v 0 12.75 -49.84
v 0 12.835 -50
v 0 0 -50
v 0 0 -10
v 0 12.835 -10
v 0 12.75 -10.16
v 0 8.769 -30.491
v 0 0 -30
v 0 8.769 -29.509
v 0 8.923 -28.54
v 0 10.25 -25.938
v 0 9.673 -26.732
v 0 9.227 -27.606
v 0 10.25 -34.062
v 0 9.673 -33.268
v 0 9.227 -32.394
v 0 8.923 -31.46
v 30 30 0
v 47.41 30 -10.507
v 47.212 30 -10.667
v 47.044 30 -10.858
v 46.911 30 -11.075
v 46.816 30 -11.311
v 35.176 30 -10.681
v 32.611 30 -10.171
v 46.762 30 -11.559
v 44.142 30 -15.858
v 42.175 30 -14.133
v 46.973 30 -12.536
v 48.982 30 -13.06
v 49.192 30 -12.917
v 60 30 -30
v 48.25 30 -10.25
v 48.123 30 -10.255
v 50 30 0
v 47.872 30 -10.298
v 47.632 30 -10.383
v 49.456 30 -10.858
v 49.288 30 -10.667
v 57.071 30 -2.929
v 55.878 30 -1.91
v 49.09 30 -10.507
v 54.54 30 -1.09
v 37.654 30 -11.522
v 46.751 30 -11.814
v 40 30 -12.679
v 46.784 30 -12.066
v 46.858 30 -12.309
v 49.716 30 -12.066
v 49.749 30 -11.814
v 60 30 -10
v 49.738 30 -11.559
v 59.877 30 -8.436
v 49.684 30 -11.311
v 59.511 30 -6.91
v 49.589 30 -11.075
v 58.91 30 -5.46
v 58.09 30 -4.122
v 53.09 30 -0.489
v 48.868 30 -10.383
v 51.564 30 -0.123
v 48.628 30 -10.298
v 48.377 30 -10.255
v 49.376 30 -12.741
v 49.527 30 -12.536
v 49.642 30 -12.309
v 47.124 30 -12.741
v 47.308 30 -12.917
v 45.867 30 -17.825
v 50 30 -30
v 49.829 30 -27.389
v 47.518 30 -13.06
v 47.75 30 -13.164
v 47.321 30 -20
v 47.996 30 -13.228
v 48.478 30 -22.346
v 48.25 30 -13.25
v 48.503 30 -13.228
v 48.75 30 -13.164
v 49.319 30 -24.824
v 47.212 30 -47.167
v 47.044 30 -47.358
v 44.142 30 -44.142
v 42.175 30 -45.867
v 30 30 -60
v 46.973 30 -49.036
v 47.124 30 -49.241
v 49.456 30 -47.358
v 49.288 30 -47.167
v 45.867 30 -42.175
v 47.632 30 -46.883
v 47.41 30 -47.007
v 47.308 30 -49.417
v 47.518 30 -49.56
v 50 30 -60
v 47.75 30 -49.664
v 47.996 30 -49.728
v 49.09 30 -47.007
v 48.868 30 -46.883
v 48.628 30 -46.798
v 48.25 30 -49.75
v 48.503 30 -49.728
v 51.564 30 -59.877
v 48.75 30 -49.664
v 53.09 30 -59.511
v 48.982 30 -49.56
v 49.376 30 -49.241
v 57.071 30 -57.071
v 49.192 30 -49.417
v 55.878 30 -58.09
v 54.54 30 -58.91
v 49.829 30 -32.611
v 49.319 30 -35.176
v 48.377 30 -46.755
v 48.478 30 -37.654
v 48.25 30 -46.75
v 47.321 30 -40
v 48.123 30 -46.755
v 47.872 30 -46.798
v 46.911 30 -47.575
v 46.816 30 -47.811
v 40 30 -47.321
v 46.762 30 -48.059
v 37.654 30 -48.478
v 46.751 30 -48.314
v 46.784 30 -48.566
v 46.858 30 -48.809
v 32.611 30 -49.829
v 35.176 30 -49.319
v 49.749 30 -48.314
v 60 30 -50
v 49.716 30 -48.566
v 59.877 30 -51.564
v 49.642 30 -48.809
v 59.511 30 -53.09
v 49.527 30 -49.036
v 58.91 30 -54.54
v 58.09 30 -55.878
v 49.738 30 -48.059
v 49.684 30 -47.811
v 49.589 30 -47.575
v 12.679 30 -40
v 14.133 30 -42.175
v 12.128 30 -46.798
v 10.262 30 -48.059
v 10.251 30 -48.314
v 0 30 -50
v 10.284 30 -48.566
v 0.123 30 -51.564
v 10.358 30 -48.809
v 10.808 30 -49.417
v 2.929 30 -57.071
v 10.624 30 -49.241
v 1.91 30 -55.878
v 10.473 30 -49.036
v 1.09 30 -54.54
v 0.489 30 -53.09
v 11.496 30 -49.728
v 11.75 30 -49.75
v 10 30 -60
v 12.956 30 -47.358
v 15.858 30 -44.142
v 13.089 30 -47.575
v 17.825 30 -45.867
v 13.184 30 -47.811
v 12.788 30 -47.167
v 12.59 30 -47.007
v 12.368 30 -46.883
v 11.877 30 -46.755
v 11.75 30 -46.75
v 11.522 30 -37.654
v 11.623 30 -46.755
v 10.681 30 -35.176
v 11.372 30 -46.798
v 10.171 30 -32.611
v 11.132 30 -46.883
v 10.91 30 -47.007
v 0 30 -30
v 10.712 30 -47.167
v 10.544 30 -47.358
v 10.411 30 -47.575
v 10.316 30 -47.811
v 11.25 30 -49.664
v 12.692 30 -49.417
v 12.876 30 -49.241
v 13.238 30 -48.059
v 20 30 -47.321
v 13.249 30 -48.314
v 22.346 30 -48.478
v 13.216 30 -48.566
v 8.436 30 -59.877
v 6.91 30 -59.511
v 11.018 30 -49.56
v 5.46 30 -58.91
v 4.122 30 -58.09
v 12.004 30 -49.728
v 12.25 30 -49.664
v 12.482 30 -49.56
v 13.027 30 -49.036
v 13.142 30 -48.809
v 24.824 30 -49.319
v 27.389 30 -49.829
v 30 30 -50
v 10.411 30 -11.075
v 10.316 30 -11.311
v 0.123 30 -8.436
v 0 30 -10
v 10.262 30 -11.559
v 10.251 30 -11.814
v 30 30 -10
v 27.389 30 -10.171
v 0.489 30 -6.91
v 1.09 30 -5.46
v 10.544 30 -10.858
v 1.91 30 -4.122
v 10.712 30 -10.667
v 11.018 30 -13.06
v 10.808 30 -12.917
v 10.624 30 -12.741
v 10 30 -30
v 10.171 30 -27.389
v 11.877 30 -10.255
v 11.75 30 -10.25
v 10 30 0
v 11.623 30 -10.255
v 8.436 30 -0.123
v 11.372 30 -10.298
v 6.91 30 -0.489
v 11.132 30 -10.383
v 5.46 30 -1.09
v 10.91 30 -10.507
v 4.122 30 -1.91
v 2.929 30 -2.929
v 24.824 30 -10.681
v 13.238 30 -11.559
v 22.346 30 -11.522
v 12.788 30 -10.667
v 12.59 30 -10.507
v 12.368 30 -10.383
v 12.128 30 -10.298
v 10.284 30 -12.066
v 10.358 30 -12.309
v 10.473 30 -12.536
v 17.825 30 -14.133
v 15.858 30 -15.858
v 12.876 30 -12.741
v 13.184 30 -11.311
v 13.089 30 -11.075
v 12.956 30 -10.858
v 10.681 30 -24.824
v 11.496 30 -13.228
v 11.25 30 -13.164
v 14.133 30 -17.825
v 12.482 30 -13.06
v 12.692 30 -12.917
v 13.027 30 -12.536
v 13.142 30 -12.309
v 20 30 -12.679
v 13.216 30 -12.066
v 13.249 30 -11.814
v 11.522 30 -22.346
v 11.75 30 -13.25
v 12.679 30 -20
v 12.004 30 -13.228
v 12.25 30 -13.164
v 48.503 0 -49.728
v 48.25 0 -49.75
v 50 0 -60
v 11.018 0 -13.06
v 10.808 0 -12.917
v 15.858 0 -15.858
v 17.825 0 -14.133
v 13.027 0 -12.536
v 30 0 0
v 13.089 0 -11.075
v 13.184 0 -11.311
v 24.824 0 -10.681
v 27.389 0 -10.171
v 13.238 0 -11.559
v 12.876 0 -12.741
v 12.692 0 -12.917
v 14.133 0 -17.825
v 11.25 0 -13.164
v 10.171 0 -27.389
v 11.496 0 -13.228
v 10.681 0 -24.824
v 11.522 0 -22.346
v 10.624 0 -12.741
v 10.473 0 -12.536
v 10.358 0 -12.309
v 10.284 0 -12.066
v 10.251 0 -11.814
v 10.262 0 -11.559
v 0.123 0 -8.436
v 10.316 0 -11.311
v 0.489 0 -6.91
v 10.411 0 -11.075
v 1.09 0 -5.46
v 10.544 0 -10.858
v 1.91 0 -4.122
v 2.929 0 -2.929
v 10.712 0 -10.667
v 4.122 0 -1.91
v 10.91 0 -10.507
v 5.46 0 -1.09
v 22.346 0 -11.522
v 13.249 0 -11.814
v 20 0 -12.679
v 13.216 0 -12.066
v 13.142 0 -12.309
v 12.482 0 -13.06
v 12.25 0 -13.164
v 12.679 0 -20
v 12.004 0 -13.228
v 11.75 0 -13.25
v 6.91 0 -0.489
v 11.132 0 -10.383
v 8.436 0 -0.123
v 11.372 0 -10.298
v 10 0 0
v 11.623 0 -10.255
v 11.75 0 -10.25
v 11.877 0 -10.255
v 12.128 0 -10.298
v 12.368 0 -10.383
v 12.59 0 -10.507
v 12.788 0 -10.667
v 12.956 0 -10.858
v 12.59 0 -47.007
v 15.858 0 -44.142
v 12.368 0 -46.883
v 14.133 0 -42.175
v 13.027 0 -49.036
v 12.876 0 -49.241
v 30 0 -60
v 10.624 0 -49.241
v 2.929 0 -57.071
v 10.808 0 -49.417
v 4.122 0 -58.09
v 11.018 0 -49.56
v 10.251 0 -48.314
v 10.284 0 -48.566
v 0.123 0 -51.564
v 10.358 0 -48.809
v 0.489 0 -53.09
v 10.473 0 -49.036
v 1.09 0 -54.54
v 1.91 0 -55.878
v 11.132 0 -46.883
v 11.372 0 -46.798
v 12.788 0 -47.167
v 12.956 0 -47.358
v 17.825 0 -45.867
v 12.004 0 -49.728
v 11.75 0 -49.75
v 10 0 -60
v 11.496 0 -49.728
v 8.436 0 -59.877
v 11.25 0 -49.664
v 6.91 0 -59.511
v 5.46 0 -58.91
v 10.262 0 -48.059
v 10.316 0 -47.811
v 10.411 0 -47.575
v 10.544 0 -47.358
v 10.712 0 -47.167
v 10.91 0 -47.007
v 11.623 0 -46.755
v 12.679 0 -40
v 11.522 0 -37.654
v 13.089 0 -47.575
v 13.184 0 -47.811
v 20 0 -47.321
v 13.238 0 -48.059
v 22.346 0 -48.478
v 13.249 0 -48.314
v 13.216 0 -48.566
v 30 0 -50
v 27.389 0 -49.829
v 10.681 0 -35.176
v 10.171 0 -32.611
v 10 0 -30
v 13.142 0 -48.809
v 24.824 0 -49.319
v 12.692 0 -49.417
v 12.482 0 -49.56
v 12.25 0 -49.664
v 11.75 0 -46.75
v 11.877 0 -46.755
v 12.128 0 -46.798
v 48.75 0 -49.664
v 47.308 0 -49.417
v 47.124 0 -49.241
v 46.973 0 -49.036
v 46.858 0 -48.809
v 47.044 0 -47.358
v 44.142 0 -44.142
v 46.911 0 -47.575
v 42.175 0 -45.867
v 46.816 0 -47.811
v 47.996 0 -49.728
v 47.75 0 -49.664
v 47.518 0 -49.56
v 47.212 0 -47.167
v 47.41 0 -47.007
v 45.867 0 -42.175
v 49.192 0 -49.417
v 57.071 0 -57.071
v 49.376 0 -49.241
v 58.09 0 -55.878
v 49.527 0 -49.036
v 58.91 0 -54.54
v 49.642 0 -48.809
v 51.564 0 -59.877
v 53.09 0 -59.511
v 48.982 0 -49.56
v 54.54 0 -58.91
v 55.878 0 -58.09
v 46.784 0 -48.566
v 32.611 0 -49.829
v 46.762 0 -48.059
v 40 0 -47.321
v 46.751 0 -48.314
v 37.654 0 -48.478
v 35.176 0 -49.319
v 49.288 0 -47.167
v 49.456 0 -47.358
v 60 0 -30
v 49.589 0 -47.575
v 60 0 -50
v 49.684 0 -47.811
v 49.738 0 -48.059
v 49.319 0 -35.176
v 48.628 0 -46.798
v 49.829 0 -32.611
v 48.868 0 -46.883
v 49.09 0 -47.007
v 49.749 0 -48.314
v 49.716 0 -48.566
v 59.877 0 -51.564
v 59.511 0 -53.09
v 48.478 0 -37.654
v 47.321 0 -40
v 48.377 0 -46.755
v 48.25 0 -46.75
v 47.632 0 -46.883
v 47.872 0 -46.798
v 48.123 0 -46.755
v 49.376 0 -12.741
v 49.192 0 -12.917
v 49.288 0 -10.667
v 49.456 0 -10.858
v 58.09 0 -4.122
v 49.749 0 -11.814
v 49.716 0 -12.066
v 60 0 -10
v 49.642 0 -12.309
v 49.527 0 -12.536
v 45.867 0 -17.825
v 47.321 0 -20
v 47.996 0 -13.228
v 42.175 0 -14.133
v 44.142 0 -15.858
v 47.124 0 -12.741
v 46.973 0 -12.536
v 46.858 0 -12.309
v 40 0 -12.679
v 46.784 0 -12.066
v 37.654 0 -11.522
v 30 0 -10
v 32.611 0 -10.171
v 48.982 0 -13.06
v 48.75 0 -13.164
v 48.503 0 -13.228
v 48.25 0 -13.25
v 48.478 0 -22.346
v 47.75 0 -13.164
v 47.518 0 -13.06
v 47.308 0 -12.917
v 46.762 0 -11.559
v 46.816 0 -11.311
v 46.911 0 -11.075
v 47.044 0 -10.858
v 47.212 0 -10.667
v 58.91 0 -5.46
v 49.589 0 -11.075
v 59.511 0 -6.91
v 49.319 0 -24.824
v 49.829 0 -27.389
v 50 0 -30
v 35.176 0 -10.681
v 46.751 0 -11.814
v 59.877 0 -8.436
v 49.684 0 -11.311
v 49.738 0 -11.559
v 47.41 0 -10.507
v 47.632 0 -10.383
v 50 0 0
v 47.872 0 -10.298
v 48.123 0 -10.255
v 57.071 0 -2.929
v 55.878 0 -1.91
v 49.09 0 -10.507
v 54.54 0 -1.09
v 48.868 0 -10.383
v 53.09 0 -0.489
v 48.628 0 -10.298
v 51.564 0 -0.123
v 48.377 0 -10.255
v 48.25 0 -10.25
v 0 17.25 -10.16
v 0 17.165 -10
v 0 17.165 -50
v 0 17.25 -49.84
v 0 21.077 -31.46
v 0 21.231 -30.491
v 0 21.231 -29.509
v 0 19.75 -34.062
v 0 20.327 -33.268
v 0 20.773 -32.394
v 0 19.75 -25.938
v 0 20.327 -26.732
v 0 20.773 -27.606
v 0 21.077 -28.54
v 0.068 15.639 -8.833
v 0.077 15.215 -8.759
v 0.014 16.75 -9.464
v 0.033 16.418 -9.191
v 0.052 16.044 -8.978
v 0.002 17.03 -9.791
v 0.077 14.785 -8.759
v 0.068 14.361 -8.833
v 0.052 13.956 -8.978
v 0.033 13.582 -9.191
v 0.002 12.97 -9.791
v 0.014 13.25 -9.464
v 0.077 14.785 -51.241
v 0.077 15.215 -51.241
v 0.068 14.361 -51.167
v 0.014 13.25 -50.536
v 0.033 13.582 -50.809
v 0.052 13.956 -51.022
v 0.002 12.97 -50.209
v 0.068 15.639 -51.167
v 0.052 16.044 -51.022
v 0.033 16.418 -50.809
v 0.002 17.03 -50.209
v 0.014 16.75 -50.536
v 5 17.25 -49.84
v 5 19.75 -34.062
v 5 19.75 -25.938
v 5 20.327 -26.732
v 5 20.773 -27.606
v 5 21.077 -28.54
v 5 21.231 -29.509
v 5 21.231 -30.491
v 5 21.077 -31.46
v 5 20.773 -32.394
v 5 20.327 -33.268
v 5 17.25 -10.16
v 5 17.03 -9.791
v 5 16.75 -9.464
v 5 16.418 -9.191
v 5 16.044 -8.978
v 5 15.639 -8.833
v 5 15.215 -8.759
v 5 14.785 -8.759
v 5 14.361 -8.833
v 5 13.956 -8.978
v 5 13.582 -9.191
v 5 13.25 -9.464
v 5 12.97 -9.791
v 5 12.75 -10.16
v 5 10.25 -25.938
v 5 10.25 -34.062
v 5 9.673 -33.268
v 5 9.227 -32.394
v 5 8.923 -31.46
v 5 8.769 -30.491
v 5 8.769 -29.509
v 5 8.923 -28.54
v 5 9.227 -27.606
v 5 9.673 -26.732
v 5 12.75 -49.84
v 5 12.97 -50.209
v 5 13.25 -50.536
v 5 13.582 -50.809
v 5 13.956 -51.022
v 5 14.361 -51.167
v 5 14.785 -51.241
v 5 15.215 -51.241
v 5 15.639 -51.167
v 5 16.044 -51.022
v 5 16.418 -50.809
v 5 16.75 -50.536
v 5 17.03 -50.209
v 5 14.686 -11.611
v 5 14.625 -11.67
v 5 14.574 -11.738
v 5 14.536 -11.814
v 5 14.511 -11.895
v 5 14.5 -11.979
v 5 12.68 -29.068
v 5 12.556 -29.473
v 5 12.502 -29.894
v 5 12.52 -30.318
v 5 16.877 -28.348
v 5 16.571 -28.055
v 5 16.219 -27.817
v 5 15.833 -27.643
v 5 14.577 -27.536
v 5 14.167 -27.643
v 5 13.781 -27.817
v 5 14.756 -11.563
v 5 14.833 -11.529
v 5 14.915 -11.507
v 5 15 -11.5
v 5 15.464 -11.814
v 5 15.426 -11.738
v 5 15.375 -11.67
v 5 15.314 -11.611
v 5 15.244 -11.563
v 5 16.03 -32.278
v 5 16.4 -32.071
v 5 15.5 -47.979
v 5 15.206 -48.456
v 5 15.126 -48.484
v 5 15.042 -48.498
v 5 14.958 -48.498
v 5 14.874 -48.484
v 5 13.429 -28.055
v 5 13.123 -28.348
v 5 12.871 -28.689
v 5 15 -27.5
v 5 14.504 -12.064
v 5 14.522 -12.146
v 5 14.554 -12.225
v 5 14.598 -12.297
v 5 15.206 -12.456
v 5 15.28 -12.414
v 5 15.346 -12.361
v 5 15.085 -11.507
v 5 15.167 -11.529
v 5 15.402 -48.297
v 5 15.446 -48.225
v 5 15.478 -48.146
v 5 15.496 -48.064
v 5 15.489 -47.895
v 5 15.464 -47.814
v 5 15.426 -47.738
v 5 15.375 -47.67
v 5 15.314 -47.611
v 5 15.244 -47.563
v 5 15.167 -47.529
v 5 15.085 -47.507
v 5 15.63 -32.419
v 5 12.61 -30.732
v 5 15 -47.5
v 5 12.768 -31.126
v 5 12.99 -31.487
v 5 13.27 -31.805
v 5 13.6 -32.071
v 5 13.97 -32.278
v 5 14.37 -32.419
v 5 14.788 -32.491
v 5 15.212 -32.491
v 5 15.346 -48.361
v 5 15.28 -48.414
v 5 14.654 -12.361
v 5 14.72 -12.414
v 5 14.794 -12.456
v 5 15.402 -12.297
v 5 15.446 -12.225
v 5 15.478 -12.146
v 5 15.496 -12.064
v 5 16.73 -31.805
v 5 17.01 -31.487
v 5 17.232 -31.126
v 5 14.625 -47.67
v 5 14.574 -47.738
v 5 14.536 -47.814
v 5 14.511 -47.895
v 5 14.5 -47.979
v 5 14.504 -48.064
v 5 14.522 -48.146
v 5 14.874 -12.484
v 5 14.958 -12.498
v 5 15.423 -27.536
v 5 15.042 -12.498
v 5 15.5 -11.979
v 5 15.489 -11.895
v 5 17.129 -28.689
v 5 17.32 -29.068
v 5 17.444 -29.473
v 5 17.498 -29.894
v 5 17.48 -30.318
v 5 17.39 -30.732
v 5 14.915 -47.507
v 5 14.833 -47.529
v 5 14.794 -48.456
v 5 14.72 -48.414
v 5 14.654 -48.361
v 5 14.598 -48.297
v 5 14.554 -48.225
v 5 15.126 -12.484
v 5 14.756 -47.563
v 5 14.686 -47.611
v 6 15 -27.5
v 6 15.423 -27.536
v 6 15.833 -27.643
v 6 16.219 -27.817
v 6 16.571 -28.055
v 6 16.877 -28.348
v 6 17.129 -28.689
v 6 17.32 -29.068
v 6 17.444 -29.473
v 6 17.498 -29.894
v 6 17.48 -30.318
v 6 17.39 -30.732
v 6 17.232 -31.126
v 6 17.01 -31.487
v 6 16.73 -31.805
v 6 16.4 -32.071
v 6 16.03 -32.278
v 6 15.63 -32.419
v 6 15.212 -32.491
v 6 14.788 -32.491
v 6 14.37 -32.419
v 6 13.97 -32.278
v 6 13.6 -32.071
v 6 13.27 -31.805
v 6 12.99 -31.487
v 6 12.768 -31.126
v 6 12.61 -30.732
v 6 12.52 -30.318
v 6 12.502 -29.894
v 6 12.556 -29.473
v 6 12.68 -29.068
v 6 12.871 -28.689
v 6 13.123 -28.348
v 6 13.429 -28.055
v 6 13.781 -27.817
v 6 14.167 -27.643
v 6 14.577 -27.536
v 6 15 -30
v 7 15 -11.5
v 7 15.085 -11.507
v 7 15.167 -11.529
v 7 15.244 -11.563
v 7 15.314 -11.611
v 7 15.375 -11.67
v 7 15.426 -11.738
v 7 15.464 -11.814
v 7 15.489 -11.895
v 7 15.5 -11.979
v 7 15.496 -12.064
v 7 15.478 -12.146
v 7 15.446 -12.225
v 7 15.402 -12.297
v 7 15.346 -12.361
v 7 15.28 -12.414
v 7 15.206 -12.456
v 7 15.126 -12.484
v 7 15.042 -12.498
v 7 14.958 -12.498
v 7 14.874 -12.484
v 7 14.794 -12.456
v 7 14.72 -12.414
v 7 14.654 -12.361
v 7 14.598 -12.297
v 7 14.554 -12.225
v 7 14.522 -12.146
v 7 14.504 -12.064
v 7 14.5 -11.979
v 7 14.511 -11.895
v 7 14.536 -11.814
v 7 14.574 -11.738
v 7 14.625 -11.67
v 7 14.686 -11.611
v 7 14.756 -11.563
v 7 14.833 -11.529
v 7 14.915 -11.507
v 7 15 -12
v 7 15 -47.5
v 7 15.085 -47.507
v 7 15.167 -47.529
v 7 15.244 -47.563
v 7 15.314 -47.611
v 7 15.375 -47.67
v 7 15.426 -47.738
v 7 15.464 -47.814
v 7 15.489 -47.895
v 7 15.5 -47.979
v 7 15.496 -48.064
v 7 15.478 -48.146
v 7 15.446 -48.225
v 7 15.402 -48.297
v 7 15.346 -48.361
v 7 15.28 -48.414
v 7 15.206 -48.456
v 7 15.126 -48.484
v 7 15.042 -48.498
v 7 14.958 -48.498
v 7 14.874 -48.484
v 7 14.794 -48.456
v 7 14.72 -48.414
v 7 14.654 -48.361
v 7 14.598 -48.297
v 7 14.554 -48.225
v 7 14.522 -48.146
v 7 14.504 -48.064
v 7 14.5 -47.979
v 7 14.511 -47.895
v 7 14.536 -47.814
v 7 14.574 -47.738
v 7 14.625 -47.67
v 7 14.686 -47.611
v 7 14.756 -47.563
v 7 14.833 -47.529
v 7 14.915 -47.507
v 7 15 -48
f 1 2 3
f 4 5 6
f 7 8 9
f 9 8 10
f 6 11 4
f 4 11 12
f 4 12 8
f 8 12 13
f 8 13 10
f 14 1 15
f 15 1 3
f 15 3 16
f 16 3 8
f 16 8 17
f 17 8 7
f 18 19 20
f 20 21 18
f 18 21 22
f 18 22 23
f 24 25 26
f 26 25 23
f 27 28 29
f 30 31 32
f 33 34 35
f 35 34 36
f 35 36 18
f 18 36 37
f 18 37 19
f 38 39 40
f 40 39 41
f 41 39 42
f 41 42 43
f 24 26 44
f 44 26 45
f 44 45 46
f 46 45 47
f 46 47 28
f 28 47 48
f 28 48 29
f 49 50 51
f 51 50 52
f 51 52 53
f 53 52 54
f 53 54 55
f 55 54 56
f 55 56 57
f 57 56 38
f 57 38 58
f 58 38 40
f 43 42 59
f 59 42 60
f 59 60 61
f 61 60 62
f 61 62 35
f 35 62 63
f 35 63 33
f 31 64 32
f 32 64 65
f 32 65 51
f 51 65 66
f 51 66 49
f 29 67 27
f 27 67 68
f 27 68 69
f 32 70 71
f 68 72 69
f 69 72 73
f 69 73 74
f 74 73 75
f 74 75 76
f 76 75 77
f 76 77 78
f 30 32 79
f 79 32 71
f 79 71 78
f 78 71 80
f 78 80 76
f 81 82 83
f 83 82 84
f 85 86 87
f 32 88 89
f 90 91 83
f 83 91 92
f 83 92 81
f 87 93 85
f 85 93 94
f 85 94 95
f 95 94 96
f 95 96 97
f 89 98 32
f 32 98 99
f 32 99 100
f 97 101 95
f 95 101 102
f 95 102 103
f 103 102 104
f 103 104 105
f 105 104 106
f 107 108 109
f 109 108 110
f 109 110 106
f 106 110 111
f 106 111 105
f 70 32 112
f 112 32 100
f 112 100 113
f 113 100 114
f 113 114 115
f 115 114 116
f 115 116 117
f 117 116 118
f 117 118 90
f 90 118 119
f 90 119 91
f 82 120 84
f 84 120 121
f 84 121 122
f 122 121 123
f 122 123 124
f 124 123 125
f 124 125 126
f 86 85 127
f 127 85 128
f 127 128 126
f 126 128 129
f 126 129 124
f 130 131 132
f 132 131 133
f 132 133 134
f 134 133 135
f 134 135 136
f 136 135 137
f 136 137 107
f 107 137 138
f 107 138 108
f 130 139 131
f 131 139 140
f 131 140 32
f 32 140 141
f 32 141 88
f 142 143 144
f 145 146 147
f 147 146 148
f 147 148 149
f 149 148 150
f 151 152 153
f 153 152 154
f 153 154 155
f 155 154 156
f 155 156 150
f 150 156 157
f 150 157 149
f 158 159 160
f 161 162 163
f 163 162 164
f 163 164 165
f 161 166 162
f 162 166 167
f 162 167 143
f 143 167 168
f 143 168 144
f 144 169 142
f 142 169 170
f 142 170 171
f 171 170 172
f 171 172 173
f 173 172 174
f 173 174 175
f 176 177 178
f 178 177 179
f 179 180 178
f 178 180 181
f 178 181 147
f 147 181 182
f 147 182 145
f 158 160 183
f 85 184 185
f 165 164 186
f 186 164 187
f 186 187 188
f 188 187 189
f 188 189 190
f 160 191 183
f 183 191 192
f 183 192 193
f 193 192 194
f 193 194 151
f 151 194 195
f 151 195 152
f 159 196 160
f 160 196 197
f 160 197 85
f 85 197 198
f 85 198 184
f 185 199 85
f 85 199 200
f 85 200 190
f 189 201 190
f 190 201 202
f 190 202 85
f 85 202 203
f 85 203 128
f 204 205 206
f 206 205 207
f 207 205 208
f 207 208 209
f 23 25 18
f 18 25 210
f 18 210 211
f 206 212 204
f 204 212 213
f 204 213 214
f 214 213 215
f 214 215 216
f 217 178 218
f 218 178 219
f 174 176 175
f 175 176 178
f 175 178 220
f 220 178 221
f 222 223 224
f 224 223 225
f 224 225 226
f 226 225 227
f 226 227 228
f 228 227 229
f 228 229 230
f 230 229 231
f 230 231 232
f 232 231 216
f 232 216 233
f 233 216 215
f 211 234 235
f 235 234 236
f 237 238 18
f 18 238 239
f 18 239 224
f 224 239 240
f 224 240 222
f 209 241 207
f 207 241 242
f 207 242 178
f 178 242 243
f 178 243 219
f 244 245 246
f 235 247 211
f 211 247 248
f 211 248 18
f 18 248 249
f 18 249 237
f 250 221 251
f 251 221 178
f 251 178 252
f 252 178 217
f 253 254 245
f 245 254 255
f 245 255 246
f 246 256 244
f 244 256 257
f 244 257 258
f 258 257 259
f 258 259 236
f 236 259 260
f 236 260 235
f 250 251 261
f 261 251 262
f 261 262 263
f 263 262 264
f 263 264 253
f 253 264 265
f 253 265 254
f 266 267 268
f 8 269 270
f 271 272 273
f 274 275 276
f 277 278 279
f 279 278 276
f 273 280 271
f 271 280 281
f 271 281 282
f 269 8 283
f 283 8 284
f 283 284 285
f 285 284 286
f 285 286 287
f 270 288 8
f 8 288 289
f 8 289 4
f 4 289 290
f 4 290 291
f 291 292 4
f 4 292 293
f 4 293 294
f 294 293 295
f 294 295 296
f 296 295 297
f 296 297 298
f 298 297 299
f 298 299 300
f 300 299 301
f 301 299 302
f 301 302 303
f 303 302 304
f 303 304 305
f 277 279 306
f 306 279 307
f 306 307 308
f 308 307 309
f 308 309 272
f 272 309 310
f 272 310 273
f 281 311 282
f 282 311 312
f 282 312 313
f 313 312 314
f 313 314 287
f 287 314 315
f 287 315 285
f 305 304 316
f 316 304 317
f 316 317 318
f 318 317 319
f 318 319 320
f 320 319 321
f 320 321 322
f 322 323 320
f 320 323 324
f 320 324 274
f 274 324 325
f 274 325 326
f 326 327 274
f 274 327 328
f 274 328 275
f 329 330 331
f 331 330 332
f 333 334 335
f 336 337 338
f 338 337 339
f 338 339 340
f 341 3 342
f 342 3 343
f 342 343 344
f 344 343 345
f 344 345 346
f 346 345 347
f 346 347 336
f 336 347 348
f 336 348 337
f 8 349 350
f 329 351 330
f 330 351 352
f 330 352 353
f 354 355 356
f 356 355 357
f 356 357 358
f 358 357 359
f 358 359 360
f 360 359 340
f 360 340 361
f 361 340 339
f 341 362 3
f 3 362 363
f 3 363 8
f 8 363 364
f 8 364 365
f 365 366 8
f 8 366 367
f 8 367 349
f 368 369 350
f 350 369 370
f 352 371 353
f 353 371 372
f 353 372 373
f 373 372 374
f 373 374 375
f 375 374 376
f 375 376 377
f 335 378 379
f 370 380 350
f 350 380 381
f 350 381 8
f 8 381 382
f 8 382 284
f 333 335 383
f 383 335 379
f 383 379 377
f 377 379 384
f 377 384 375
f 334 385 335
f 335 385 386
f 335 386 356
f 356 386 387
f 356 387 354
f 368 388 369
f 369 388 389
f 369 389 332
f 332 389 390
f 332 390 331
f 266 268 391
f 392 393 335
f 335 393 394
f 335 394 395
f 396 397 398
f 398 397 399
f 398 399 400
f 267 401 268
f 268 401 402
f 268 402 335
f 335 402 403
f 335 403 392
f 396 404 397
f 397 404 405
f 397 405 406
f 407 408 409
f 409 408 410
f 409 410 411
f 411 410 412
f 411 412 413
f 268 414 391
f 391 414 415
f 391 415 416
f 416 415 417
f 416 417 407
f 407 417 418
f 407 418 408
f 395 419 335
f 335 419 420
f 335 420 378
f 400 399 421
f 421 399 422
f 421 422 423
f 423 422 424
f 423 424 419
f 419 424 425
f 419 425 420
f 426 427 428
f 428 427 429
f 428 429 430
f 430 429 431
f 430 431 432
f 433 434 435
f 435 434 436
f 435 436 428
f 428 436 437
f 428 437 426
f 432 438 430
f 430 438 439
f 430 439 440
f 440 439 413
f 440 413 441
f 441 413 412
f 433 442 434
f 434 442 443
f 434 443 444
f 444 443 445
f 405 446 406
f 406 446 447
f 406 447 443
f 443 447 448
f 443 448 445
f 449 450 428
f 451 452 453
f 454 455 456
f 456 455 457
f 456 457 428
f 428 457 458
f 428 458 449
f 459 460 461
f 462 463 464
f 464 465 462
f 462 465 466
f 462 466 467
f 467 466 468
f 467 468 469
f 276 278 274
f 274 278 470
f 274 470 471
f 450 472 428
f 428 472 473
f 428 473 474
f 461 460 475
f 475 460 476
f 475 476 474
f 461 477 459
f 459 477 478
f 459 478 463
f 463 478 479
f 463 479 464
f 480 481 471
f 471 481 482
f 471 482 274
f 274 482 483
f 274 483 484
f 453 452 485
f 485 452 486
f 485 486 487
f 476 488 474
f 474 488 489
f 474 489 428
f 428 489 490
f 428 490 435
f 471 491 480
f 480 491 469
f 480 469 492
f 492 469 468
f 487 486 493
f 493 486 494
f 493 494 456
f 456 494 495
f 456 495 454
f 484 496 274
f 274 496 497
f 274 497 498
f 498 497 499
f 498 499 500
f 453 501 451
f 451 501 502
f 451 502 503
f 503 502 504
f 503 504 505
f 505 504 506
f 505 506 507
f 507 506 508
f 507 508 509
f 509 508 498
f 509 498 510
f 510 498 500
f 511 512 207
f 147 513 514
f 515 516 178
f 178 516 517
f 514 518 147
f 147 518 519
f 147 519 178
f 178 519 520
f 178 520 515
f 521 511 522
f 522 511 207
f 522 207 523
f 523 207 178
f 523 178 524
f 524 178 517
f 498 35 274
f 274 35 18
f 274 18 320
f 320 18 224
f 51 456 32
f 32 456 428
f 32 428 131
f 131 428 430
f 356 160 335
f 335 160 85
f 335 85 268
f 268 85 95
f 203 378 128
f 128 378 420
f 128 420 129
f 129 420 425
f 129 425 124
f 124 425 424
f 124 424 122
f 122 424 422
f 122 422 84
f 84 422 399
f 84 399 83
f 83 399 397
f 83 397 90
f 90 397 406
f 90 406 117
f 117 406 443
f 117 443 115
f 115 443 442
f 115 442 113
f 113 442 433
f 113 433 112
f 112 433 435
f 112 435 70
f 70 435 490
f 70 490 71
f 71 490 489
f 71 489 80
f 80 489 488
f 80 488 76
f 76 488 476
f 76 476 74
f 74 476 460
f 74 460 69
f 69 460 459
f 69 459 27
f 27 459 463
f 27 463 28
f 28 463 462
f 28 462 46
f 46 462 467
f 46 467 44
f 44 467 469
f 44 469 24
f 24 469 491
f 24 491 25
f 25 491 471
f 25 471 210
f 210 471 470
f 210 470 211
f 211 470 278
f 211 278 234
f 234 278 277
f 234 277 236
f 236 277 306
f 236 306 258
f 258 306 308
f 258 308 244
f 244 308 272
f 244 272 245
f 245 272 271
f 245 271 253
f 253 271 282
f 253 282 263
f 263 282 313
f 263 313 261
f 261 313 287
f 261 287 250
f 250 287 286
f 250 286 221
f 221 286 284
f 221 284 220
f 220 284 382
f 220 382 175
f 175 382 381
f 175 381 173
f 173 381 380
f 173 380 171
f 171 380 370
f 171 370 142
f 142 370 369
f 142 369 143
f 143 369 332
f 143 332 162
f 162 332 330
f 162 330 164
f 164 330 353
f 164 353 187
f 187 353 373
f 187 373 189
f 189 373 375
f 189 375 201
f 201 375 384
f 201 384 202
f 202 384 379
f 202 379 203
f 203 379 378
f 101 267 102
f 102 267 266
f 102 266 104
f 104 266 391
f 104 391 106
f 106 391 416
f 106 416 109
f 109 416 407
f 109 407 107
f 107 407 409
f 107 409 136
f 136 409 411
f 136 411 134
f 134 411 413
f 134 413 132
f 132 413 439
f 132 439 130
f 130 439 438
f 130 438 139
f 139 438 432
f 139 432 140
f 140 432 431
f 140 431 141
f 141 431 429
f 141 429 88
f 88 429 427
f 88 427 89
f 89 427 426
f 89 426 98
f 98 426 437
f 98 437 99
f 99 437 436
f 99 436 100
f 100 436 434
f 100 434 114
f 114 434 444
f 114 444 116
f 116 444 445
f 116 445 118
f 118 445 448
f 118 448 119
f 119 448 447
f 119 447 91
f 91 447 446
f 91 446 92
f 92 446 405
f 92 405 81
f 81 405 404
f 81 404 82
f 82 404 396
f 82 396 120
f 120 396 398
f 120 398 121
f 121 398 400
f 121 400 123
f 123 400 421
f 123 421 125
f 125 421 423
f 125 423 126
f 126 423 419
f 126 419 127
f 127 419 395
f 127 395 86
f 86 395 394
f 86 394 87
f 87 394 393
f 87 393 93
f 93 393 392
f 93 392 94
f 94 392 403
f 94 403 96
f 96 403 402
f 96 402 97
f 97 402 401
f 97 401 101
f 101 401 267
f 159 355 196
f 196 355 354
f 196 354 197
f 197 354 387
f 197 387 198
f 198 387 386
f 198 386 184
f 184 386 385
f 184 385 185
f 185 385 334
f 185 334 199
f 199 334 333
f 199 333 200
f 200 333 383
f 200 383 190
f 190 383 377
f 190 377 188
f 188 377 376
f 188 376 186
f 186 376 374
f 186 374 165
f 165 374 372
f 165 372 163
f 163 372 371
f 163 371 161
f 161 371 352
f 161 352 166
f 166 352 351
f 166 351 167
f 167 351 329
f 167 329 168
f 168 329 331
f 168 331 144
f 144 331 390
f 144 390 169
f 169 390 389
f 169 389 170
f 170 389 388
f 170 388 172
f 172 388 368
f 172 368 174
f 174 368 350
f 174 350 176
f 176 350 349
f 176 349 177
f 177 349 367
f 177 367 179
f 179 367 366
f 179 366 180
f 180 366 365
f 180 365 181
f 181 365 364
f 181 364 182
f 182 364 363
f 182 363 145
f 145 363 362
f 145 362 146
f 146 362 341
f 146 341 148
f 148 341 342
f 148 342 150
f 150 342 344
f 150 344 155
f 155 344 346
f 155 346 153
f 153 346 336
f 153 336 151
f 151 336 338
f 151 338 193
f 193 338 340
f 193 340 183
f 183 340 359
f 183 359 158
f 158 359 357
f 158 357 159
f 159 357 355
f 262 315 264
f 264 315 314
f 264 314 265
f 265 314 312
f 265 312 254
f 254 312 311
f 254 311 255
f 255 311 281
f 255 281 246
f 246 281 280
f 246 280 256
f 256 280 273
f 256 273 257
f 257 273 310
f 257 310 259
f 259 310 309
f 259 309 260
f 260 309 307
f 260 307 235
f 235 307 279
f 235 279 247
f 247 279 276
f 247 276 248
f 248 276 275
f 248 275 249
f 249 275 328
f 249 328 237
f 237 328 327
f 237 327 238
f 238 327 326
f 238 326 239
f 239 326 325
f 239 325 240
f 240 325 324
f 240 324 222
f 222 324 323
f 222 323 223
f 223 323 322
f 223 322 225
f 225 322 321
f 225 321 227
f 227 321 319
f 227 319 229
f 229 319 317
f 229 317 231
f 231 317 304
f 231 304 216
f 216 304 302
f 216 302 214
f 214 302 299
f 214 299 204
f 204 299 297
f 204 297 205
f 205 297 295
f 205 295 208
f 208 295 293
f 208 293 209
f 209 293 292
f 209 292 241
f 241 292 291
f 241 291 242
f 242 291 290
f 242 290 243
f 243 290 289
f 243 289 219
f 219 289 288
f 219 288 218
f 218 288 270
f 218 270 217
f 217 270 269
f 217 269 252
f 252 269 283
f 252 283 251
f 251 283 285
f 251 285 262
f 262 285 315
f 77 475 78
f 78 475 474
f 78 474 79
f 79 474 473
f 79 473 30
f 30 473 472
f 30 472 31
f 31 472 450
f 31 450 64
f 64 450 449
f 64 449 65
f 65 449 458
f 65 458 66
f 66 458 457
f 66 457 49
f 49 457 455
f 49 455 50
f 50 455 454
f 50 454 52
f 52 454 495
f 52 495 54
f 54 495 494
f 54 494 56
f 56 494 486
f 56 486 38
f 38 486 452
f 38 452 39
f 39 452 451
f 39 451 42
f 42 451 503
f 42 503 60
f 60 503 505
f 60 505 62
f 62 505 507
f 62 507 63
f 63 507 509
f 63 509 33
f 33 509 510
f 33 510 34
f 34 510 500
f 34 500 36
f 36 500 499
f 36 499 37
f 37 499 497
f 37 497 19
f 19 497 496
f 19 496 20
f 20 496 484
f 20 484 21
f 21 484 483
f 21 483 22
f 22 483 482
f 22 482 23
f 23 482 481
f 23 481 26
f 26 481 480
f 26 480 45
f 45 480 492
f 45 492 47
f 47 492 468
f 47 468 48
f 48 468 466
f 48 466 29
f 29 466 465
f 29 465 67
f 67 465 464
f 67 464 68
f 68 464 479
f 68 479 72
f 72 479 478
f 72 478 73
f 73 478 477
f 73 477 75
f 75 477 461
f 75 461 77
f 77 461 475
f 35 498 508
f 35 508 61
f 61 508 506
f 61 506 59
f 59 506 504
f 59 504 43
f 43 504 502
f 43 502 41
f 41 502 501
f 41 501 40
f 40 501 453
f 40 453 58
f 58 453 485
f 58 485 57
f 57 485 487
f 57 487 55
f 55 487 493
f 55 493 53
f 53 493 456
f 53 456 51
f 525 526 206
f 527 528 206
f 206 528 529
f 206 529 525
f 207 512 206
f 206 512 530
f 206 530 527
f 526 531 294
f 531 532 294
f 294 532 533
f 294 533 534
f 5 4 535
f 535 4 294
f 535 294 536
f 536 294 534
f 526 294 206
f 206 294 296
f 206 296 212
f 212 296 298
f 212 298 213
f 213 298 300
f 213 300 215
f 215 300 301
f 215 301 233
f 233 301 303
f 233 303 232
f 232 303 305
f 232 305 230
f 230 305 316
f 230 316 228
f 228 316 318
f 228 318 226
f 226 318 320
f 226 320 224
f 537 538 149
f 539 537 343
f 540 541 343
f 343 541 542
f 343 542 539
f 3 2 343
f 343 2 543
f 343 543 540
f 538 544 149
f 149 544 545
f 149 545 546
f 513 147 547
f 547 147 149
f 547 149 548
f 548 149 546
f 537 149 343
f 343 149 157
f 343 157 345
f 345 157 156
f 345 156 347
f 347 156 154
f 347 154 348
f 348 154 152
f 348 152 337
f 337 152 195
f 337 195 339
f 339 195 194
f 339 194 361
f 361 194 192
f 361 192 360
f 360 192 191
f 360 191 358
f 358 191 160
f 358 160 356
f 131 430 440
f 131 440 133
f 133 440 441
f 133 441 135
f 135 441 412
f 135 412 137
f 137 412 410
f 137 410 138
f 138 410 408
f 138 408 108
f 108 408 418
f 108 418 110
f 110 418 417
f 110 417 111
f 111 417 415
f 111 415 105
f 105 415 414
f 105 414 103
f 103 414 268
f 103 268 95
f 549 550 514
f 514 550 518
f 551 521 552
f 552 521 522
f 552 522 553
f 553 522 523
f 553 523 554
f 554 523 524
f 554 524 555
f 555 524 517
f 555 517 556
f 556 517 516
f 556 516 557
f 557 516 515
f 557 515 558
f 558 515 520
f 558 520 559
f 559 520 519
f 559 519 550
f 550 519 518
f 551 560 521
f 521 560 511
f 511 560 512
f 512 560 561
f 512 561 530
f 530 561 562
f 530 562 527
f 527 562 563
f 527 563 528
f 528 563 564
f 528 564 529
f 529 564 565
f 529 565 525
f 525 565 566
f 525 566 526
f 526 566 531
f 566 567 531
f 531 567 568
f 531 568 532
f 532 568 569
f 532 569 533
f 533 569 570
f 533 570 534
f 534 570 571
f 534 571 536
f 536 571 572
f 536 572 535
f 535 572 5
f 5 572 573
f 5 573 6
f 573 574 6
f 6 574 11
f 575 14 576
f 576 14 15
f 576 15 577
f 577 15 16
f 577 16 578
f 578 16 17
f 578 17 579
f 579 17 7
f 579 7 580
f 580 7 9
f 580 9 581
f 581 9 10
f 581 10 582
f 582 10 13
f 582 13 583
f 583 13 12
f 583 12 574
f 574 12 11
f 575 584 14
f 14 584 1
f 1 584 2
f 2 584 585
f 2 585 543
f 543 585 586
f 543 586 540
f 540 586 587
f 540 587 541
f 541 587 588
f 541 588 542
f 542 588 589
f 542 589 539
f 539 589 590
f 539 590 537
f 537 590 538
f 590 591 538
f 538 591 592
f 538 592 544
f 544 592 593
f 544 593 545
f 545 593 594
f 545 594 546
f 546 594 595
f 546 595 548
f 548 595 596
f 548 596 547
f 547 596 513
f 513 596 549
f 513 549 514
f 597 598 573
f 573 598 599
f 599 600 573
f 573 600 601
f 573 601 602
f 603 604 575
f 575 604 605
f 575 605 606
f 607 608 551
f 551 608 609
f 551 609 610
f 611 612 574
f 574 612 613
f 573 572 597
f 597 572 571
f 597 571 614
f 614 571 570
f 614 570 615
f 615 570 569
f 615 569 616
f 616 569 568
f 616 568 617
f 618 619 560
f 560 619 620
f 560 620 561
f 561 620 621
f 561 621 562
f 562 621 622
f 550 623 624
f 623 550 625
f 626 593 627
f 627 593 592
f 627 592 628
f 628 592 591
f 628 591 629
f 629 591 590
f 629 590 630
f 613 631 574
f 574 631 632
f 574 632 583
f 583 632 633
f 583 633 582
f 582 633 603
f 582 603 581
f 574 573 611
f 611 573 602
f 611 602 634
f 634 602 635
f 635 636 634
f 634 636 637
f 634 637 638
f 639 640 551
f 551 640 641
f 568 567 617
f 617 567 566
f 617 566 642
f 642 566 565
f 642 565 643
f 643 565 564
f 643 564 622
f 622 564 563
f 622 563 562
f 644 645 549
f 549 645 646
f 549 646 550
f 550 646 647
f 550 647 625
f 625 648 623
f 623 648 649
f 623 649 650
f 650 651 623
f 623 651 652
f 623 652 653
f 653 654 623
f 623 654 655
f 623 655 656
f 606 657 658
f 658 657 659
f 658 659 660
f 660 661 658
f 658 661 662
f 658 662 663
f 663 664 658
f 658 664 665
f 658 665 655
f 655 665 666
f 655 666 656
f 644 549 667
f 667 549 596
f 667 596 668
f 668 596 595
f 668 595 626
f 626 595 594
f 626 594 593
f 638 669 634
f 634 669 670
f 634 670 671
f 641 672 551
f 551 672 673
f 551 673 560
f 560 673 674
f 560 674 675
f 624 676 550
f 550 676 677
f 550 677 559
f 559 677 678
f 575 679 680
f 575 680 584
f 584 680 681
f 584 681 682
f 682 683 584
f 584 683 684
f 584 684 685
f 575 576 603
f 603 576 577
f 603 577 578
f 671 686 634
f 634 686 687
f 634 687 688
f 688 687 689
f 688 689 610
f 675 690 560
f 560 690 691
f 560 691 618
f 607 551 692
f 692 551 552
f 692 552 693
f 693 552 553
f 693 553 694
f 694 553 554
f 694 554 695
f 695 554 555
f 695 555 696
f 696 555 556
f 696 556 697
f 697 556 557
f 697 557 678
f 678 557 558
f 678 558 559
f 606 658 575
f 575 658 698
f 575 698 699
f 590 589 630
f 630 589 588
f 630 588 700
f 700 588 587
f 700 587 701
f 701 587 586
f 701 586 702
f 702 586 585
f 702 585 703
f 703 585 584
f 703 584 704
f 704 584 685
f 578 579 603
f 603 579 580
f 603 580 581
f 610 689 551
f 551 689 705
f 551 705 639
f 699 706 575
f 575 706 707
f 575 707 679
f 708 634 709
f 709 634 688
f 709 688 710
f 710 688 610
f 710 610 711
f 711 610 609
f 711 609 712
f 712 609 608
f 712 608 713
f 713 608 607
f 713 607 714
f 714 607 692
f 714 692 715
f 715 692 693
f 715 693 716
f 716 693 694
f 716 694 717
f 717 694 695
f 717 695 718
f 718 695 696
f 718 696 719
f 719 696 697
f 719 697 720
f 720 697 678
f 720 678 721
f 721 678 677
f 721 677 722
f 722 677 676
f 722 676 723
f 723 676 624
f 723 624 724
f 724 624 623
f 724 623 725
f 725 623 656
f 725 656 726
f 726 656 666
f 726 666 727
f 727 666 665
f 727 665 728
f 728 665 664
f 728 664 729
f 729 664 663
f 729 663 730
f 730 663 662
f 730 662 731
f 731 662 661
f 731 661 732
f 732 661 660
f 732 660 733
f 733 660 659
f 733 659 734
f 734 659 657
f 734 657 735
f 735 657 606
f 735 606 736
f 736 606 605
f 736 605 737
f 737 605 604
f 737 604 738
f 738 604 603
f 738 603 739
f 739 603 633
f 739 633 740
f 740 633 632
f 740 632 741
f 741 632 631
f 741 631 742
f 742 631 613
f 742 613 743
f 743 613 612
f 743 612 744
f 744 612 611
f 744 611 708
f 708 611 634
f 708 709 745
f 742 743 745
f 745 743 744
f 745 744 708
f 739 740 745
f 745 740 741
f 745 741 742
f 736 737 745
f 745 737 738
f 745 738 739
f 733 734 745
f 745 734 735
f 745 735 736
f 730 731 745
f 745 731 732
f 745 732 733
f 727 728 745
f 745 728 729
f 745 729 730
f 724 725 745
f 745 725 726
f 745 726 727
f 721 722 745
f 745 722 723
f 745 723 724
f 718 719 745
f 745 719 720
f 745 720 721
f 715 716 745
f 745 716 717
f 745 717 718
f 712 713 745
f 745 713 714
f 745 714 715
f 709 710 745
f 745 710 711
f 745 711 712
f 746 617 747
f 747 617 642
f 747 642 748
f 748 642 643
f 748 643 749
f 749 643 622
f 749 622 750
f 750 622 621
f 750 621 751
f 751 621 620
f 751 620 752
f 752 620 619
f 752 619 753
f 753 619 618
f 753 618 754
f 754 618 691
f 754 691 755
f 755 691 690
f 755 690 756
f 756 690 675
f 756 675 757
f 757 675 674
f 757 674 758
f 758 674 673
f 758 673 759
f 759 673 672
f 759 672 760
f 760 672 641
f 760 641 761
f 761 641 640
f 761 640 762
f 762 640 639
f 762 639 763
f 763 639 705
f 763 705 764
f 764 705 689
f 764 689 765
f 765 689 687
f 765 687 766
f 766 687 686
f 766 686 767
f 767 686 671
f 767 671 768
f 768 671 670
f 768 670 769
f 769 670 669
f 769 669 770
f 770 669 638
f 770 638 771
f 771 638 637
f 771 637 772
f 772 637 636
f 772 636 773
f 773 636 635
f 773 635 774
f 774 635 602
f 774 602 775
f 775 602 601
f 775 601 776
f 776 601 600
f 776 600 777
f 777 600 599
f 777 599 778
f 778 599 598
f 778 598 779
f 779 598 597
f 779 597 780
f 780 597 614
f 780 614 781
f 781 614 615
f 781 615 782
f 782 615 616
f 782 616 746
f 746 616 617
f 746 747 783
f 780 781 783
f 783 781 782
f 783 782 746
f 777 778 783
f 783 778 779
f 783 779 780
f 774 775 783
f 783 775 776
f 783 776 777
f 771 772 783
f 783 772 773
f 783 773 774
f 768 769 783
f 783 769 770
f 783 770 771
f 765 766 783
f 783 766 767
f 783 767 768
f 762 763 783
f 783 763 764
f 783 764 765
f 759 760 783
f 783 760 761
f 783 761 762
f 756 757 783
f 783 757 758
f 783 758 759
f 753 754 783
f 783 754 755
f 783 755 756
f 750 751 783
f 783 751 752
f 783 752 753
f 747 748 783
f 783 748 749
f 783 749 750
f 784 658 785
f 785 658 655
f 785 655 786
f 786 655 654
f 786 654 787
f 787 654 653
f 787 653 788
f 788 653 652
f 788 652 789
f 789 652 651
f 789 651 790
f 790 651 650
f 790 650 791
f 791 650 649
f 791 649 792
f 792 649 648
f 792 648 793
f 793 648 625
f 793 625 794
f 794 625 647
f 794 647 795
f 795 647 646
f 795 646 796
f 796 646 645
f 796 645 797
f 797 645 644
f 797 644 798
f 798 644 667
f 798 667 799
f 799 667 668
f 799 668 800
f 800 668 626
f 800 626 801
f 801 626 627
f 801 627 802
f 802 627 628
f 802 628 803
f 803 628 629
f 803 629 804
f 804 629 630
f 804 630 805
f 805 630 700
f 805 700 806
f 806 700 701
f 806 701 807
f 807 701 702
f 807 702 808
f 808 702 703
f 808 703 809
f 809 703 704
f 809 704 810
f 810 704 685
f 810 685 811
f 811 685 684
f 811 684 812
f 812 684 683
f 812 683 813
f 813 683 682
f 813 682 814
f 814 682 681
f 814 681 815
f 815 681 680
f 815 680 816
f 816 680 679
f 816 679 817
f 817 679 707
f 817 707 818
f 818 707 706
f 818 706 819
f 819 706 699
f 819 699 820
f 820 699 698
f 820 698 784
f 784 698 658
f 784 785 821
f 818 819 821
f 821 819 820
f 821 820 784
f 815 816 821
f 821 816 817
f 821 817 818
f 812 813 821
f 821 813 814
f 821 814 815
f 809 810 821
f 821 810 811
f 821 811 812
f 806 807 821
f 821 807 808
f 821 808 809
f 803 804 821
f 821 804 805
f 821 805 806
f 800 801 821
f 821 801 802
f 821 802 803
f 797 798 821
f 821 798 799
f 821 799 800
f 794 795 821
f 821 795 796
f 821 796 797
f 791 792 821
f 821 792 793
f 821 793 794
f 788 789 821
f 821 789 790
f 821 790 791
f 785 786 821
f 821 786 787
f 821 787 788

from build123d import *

# Parameters (mm, degrees)
SKETCH1_W           = 60
SKETCH1_H           = 60
SKETCH1_R           = 20
SKETCH1_R_2         = 1.5
BOSS_EXTRUDE1_DEPTH = 30
FILLET1_R           = 10
SKETCH2_R           = 6.25
CUT_EXTRUDE1_DEPTH  = 5
SKETCH3_R           = 2.5
CUT_EXTRUDE4_DEPTH  = 1
SKETCH4_R           = 0.5
CUT_EXTRUDE5_DEPTH  = 2


with BuildPart() as part:
    # Sketch1 → Boss-Extrude1 (new body)
    with BuildSketch(Plane(origin=(0, 0, 0), x_dir=(1, 0, 0), z_dir=(0, 1, 0))):
        with Locations((30, 30)):
            Rectangle(SKETCH1_W, SKETCH1_H)
        with Locations(Location((30, 30, 0), (0, 0, 270))):
            Circle(SKETCH1_R, mode=Mode.SUBTRACT)
        with Locations(Location((48.25, 48.25, 0), (0, 0, 270))):
            Circle(SKETCH1_R_2, mode=Mode.SUBTRACT)
        with Locations(Location((11.75, 48.25, 0), (0, 0, 270))):
            Circle(SKETCH1_R_2, mode=Mode.SUBTRACT)
        with Locations(Location((11.75, 11.75, 0), (0, 0, 270))):
            Circle(SKETCH1_R_2, mode=Mode.SUBTRACT)
        with Locations(Location((48.25, 11.75, 0), (0, 0, 270))):
            Circle(SKETCH1_R_2, mode=Mode.SUBTRACT)
    extrude(amount=BOSS_EXTRUDE1_DEPTH)

    # Fillet1
    fillet1_edges = [part.edges().sort_by_distance(p)[0] for p in [
        (0, 15, -60),
        (60, 15, -60),
        (60, 15, 0),
        (0, 15, 0),
    ]]
    fillet(fillet1_edges, radius=FILLET1_R)

    # Sketch2 → Cut-Extrude1 (cut)
    with BuildSketch(Plane.ZY):
        with BuildLine():
            Line((-34.062019202, 19.75), (-48.409222121, 17.476665185))
            ThreePointArc((-48.409222121, 17.476665185), (-46.865597615, 16.642871769), (-46.25, 15))
            ThreePointArc((-46.25, 15), (-46.865597615, 13.357128231), (-48.409222121, 12.523334815))
            Line((-48.409222121, 12.523334815), (-34.062019202, 10.25))
            ThreePointArc((-34.062019202, 10.25), (-36.25, 15), (-34.062019202, 19.75))
        make_face()
        with Locations((-30, 15)):
            Circle(SKETCH2_R)
        with BuildLine():
            Line((-11.590777879, 17.476665185), (-25.937980798, 19.75))
            ThreePointArc((-25.937980798, 19.75), (-24.323287923, 17.614849899), (-23.75, 15))
            ThreePointArc((-23.75, 15), (-24.323287923, 12.385150101), (-25.937980798, 10.25))
            Line((-25.937980798, 10.25), (-11.590777879, 12.523334815))
            ThreePointArc((-11.590777879, 12.523334815), (-13.75, 15), (-11.590777879, 17.476665185))
        make_face()
        with BuildLine():
            Line((-10.160275264, 17.25), (-11.590777879, 17.476665185))
            ThreePointArc((-11.590777879, 17.476665185), (-13.75, 15), (-11.590777879, 12.523334815))
            Line((-11.590777879, 12.523334815), (-10.160275264, 12.75))
            ThreePointArc((-10.160275264, 12.75), (-10.079367047, 12.791014149), (-10, 12.834936491))
            Line((-10, 12.834936491), (-10, 17.165063509))
            ThreePointArc((-10, 17.165063509), (-10.079367047, 17.208985851), (-10.160275264, 17.25))
        make_face()
        with BuildLine():
            ThreePointArc((-8.75, 15), (-9.084936491, 16.25), (-10, 17.165063509))
            Line((-10, 17.165063509), (-10, 12.834936491))
            ThreePointArc((-10, 12.834936491), (-9.084936491, 13.75), (-8.75, 15))
        make_face()
        with BuildLine():
            Line((-48.409222121, 17.476665185), (-49.839724736, 17.25))
            ThreePointArc((-49.839724736, 17.25), (-49.920632953, 17.208985851), (-50, 17.165063509))
            Line((-50, 17.165063509), (-50, 12.834936491))
            ThreePointArc((-50, 12.834936491), (-49.920632953, 12.791014149), (-49.839724736, 12.75))
            Line((-49.839724736, 12.75), (-48.409222121, 12.523334815))
            ThreePointArc((-48.409222121, 12.523334815), (-46.865597615, 13.357128231), (-46.25, 15))
            ThreePointArc((-46.25, 15), (-46.865597615, 16.642871769), (-48.409222121, 17.476665185))
        make_face()
        with BuildLine():
            Line((-50, 12.834936491), (-50, 17.165063509))
            ThreePointArc((-50, 17.165063509), (-51.25, 15), (-50, 12.834936491))
        make_face()
    extrude(amount=-CUT_EXTRUDE1_DEPTH, mode=Mode.SUBTRACT)

    # Sketch3 → Cut-Extrude4 (cut)
    with BuildSketch(Plane.ZY.offset(-5)):
        with Locations((-30, 15)):
            Circle(SKETCH3_R)
    extrude(amount=-CUT_EXTRUDE4_DEPTH, mode=Mode.SUBTRACT)

    # Sketch4 → Cut-Extrude5 (cut)
    with BuildSketch(Plane.ZY.offset(-5)):
        with Locations((-12, 15)):
            Circle(SKETCH4_R)
        with Locations((-48, 15)):
            Circle(SKETCH4_R)
    extrude(amount=-CUT_EXTRUDE5_DEPTH, mode=Mode.SUBTRACT)


solid = part.part
